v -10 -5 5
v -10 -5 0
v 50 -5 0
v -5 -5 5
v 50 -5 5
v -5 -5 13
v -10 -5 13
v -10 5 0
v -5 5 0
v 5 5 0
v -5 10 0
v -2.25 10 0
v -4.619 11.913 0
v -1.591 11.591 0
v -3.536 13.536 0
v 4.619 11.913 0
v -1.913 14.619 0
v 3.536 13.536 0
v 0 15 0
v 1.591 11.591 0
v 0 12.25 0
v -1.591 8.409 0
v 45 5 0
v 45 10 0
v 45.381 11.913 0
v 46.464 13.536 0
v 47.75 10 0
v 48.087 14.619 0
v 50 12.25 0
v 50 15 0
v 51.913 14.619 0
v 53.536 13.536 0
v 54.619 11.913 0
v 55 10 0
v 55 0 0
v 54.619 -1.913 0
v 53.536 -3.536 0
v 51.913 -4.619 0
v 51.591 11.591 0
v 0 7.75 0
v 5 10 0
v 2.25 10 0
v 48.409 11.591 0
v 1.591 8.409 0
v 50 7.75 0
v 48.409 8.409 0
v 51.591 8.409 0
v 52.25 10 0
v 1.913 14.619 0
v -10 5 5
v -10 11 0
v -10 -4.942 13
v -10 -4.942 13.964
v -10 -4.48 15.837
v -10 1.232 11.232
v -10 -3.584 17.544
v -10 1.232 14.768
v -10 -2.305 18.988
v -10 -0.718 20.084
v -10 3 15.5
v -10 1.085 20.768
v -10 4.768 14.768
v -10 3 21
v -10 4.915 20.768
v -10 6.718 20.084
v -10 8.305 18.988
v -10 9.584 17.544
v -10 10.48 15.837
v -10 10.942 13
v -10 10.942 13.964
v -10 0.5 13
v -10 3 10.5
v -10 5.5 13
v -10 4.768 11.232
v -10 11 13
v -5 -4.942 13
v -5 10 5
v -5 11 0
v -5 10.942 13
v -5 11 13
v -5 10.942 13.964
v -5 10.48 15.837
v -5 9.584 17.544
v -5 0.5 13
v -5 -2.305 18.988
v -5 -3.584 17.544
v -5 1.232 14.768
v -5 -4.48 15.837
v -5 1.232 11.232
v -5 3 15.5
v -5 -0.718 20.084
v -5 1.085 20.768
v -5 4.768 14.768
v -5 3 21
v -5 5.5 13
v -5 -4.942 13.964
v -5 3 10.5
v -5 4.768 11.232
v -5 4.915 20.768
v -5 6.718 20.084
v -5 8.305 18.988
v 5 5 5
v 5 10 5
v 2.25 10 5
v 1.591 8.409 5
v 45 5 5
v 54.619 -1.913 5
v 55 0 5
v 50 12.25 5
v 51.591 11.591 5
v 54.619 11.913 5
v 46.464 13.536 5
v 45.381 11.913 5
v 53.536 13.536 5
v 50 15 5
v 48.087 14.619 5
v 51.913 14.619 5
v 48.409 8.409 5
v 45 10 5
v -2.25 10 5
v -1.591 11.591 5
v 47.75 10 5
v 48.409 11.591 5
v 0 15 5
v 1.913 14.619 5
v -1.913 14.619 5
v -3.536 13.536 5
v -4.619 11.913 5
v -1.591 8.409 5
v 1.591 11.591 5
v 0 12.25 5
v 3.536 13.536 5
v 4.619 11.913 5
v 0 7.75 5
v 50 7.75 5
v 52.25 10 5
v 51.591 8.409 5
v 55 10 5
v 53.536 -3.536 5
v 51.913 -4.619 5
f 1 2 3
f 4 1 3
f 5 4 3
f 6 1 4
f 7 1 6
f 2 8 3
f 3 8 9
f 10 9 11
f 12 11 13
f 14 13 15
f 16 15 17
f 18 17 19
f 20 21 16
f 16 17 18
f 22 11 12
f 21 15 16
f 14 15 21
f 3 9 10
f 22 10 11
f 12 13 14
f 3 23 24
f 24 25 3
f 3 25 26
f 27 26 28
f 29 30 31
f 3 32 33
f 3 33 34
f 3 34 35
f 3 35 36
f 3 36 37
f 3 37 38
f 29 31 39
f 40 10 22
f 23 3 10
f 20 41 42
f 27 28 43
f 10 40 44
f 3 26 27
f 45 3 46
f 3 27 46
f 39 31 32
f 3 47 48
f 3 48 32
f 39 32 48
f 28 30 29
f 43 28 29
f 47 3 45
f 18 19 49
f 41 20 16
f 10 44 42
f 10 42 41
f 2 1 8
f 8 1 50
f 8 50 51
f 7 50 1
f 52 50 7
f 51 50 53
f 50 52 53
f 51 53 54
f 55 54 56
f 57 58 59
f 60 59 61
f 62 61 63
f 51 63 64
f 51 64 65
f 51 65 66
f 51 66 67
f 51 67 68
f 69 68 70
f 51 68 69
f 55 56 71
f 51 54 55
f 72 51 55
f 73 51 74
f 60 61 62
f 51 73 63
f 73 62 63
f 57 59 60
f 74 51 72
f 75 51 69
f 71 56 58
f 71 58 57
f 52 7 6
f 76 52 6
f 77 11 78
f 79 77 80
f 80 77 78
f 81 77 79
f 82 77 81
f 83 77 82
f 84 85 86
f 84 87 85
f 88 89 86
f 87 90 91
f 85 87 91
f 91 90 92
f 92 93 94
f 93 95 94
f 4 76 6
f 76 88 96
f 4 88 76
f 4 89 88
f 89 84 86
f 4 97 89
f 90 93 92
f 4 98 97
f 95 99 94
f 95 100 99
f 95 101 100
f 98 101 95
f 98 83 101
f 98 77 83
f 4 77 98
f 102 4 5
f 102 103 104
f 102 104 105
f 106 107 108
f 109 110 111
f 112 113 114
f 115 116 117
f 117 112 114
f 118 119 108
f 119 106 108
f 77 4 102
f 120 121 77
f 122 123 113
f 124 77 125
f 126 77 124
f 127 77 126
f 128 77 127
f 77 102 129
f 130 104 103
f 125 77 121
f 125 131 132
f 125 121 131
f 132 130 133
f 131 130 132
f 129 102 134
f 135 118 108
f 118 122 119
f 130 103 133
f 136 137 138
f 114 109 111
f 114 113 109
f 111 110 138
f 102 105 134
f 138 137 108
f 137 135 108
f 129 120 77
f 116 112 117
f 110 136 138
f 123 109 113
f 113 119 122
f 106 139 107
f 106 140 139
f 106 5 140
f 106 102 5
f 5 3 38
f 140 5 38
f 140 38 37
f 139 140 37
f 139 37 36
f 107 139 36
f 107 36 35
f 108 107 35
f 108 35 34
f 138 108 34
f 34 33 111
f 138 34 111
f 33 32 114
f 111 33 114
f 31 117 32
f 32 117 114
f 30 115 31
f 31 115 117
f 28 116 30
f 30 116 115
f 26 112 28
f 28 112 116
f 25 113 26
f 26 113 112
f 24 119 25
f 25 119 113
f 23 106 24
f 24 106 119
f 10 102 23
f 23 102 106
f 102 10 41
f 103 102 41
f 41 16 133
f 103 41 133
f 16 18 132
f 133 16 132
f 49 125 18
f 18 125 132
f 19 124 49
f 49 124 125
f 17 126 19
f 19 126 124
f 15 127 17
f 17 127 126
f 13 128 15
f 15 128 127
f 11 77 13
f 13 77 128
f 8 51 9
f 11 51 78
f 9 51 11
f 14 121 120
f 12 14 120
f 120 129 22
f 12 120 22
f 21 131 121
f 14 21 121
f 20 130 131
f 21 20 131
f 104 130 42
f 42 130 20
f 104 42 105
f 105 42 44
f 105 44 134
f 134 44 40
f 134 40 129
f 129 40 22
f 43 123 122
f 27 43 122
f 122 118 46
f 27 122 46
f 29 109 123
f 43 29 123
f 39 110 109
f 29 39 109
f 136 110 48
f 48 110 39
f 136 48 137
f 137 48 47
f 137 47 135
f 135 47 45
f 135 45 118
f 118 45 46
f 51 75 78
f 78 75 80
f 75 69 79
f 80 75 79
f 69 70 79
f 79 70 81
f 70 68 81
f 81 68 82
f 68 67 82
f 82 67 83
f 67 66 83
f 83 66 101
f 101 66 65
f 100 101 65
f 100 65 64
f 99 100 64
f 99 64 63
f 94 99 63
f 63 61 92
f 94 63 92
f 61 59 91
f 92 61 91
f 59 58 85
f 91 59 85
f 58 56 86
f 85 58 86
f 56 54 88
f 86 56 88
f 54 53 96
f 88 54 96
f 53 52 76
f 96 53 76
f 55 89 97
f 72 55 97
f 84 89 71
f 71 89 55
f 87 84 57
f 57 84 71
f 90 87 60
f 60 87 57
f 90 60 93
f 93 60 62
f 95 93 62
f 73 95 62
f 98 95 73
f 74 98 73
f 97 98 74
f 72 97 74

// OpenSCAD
// the holder itself
fan_mount_hole_dia = 4.5;
fan_mount_plate_dia = 10;
fan_mount_distance = 10;
mount_hole_dia = 5;
mount_plate_dia = 16;

module single_mount() {

difference() {
  hull()
  {
    cylinder(r=fan_mount_plate_dia/2,h=5);
	translate([0, fan_mount_distance, 0]) 
      cylinder(r=fan_mount_plate_dia/2,h=5);
	
  }
  translate([0, fan_mount_distance, 0]) 
    cylinder(r=fan_mount_hole_dia/2,h=5);
}

}


single_mount();
translate([50, 0, 0])
  single_mount();
hull() {
	translate([-5, 0, 2.5])
      cube([fan_mount_plate_dia, fan_mount_plate_dia, 5], center=true);
	translate([50, 0, 0])
	  cylinder(r=fan_mount_plate_dia/2,h=5);
}

translate([-5, -5, 0])

rotate([0, -90, 0]) {
difference() {

union() {
cube([mount_plate_dia * 0.5 + 5, mount_plate_dia, 5]);
translate([mount_plate_dia * 0.5 + 5, mount_plate_dia/2, 0]) {
      cylinder(r=mount_plate_dia/2, h=5);
}
}

translate([mount_plate_dia * 0.5 + 5, mount_plate_dia/2, 0]) {
	  translate([0, 0, -1])
        cylinder(r=mount_hole_dia/2, h=7);

}

}
}
